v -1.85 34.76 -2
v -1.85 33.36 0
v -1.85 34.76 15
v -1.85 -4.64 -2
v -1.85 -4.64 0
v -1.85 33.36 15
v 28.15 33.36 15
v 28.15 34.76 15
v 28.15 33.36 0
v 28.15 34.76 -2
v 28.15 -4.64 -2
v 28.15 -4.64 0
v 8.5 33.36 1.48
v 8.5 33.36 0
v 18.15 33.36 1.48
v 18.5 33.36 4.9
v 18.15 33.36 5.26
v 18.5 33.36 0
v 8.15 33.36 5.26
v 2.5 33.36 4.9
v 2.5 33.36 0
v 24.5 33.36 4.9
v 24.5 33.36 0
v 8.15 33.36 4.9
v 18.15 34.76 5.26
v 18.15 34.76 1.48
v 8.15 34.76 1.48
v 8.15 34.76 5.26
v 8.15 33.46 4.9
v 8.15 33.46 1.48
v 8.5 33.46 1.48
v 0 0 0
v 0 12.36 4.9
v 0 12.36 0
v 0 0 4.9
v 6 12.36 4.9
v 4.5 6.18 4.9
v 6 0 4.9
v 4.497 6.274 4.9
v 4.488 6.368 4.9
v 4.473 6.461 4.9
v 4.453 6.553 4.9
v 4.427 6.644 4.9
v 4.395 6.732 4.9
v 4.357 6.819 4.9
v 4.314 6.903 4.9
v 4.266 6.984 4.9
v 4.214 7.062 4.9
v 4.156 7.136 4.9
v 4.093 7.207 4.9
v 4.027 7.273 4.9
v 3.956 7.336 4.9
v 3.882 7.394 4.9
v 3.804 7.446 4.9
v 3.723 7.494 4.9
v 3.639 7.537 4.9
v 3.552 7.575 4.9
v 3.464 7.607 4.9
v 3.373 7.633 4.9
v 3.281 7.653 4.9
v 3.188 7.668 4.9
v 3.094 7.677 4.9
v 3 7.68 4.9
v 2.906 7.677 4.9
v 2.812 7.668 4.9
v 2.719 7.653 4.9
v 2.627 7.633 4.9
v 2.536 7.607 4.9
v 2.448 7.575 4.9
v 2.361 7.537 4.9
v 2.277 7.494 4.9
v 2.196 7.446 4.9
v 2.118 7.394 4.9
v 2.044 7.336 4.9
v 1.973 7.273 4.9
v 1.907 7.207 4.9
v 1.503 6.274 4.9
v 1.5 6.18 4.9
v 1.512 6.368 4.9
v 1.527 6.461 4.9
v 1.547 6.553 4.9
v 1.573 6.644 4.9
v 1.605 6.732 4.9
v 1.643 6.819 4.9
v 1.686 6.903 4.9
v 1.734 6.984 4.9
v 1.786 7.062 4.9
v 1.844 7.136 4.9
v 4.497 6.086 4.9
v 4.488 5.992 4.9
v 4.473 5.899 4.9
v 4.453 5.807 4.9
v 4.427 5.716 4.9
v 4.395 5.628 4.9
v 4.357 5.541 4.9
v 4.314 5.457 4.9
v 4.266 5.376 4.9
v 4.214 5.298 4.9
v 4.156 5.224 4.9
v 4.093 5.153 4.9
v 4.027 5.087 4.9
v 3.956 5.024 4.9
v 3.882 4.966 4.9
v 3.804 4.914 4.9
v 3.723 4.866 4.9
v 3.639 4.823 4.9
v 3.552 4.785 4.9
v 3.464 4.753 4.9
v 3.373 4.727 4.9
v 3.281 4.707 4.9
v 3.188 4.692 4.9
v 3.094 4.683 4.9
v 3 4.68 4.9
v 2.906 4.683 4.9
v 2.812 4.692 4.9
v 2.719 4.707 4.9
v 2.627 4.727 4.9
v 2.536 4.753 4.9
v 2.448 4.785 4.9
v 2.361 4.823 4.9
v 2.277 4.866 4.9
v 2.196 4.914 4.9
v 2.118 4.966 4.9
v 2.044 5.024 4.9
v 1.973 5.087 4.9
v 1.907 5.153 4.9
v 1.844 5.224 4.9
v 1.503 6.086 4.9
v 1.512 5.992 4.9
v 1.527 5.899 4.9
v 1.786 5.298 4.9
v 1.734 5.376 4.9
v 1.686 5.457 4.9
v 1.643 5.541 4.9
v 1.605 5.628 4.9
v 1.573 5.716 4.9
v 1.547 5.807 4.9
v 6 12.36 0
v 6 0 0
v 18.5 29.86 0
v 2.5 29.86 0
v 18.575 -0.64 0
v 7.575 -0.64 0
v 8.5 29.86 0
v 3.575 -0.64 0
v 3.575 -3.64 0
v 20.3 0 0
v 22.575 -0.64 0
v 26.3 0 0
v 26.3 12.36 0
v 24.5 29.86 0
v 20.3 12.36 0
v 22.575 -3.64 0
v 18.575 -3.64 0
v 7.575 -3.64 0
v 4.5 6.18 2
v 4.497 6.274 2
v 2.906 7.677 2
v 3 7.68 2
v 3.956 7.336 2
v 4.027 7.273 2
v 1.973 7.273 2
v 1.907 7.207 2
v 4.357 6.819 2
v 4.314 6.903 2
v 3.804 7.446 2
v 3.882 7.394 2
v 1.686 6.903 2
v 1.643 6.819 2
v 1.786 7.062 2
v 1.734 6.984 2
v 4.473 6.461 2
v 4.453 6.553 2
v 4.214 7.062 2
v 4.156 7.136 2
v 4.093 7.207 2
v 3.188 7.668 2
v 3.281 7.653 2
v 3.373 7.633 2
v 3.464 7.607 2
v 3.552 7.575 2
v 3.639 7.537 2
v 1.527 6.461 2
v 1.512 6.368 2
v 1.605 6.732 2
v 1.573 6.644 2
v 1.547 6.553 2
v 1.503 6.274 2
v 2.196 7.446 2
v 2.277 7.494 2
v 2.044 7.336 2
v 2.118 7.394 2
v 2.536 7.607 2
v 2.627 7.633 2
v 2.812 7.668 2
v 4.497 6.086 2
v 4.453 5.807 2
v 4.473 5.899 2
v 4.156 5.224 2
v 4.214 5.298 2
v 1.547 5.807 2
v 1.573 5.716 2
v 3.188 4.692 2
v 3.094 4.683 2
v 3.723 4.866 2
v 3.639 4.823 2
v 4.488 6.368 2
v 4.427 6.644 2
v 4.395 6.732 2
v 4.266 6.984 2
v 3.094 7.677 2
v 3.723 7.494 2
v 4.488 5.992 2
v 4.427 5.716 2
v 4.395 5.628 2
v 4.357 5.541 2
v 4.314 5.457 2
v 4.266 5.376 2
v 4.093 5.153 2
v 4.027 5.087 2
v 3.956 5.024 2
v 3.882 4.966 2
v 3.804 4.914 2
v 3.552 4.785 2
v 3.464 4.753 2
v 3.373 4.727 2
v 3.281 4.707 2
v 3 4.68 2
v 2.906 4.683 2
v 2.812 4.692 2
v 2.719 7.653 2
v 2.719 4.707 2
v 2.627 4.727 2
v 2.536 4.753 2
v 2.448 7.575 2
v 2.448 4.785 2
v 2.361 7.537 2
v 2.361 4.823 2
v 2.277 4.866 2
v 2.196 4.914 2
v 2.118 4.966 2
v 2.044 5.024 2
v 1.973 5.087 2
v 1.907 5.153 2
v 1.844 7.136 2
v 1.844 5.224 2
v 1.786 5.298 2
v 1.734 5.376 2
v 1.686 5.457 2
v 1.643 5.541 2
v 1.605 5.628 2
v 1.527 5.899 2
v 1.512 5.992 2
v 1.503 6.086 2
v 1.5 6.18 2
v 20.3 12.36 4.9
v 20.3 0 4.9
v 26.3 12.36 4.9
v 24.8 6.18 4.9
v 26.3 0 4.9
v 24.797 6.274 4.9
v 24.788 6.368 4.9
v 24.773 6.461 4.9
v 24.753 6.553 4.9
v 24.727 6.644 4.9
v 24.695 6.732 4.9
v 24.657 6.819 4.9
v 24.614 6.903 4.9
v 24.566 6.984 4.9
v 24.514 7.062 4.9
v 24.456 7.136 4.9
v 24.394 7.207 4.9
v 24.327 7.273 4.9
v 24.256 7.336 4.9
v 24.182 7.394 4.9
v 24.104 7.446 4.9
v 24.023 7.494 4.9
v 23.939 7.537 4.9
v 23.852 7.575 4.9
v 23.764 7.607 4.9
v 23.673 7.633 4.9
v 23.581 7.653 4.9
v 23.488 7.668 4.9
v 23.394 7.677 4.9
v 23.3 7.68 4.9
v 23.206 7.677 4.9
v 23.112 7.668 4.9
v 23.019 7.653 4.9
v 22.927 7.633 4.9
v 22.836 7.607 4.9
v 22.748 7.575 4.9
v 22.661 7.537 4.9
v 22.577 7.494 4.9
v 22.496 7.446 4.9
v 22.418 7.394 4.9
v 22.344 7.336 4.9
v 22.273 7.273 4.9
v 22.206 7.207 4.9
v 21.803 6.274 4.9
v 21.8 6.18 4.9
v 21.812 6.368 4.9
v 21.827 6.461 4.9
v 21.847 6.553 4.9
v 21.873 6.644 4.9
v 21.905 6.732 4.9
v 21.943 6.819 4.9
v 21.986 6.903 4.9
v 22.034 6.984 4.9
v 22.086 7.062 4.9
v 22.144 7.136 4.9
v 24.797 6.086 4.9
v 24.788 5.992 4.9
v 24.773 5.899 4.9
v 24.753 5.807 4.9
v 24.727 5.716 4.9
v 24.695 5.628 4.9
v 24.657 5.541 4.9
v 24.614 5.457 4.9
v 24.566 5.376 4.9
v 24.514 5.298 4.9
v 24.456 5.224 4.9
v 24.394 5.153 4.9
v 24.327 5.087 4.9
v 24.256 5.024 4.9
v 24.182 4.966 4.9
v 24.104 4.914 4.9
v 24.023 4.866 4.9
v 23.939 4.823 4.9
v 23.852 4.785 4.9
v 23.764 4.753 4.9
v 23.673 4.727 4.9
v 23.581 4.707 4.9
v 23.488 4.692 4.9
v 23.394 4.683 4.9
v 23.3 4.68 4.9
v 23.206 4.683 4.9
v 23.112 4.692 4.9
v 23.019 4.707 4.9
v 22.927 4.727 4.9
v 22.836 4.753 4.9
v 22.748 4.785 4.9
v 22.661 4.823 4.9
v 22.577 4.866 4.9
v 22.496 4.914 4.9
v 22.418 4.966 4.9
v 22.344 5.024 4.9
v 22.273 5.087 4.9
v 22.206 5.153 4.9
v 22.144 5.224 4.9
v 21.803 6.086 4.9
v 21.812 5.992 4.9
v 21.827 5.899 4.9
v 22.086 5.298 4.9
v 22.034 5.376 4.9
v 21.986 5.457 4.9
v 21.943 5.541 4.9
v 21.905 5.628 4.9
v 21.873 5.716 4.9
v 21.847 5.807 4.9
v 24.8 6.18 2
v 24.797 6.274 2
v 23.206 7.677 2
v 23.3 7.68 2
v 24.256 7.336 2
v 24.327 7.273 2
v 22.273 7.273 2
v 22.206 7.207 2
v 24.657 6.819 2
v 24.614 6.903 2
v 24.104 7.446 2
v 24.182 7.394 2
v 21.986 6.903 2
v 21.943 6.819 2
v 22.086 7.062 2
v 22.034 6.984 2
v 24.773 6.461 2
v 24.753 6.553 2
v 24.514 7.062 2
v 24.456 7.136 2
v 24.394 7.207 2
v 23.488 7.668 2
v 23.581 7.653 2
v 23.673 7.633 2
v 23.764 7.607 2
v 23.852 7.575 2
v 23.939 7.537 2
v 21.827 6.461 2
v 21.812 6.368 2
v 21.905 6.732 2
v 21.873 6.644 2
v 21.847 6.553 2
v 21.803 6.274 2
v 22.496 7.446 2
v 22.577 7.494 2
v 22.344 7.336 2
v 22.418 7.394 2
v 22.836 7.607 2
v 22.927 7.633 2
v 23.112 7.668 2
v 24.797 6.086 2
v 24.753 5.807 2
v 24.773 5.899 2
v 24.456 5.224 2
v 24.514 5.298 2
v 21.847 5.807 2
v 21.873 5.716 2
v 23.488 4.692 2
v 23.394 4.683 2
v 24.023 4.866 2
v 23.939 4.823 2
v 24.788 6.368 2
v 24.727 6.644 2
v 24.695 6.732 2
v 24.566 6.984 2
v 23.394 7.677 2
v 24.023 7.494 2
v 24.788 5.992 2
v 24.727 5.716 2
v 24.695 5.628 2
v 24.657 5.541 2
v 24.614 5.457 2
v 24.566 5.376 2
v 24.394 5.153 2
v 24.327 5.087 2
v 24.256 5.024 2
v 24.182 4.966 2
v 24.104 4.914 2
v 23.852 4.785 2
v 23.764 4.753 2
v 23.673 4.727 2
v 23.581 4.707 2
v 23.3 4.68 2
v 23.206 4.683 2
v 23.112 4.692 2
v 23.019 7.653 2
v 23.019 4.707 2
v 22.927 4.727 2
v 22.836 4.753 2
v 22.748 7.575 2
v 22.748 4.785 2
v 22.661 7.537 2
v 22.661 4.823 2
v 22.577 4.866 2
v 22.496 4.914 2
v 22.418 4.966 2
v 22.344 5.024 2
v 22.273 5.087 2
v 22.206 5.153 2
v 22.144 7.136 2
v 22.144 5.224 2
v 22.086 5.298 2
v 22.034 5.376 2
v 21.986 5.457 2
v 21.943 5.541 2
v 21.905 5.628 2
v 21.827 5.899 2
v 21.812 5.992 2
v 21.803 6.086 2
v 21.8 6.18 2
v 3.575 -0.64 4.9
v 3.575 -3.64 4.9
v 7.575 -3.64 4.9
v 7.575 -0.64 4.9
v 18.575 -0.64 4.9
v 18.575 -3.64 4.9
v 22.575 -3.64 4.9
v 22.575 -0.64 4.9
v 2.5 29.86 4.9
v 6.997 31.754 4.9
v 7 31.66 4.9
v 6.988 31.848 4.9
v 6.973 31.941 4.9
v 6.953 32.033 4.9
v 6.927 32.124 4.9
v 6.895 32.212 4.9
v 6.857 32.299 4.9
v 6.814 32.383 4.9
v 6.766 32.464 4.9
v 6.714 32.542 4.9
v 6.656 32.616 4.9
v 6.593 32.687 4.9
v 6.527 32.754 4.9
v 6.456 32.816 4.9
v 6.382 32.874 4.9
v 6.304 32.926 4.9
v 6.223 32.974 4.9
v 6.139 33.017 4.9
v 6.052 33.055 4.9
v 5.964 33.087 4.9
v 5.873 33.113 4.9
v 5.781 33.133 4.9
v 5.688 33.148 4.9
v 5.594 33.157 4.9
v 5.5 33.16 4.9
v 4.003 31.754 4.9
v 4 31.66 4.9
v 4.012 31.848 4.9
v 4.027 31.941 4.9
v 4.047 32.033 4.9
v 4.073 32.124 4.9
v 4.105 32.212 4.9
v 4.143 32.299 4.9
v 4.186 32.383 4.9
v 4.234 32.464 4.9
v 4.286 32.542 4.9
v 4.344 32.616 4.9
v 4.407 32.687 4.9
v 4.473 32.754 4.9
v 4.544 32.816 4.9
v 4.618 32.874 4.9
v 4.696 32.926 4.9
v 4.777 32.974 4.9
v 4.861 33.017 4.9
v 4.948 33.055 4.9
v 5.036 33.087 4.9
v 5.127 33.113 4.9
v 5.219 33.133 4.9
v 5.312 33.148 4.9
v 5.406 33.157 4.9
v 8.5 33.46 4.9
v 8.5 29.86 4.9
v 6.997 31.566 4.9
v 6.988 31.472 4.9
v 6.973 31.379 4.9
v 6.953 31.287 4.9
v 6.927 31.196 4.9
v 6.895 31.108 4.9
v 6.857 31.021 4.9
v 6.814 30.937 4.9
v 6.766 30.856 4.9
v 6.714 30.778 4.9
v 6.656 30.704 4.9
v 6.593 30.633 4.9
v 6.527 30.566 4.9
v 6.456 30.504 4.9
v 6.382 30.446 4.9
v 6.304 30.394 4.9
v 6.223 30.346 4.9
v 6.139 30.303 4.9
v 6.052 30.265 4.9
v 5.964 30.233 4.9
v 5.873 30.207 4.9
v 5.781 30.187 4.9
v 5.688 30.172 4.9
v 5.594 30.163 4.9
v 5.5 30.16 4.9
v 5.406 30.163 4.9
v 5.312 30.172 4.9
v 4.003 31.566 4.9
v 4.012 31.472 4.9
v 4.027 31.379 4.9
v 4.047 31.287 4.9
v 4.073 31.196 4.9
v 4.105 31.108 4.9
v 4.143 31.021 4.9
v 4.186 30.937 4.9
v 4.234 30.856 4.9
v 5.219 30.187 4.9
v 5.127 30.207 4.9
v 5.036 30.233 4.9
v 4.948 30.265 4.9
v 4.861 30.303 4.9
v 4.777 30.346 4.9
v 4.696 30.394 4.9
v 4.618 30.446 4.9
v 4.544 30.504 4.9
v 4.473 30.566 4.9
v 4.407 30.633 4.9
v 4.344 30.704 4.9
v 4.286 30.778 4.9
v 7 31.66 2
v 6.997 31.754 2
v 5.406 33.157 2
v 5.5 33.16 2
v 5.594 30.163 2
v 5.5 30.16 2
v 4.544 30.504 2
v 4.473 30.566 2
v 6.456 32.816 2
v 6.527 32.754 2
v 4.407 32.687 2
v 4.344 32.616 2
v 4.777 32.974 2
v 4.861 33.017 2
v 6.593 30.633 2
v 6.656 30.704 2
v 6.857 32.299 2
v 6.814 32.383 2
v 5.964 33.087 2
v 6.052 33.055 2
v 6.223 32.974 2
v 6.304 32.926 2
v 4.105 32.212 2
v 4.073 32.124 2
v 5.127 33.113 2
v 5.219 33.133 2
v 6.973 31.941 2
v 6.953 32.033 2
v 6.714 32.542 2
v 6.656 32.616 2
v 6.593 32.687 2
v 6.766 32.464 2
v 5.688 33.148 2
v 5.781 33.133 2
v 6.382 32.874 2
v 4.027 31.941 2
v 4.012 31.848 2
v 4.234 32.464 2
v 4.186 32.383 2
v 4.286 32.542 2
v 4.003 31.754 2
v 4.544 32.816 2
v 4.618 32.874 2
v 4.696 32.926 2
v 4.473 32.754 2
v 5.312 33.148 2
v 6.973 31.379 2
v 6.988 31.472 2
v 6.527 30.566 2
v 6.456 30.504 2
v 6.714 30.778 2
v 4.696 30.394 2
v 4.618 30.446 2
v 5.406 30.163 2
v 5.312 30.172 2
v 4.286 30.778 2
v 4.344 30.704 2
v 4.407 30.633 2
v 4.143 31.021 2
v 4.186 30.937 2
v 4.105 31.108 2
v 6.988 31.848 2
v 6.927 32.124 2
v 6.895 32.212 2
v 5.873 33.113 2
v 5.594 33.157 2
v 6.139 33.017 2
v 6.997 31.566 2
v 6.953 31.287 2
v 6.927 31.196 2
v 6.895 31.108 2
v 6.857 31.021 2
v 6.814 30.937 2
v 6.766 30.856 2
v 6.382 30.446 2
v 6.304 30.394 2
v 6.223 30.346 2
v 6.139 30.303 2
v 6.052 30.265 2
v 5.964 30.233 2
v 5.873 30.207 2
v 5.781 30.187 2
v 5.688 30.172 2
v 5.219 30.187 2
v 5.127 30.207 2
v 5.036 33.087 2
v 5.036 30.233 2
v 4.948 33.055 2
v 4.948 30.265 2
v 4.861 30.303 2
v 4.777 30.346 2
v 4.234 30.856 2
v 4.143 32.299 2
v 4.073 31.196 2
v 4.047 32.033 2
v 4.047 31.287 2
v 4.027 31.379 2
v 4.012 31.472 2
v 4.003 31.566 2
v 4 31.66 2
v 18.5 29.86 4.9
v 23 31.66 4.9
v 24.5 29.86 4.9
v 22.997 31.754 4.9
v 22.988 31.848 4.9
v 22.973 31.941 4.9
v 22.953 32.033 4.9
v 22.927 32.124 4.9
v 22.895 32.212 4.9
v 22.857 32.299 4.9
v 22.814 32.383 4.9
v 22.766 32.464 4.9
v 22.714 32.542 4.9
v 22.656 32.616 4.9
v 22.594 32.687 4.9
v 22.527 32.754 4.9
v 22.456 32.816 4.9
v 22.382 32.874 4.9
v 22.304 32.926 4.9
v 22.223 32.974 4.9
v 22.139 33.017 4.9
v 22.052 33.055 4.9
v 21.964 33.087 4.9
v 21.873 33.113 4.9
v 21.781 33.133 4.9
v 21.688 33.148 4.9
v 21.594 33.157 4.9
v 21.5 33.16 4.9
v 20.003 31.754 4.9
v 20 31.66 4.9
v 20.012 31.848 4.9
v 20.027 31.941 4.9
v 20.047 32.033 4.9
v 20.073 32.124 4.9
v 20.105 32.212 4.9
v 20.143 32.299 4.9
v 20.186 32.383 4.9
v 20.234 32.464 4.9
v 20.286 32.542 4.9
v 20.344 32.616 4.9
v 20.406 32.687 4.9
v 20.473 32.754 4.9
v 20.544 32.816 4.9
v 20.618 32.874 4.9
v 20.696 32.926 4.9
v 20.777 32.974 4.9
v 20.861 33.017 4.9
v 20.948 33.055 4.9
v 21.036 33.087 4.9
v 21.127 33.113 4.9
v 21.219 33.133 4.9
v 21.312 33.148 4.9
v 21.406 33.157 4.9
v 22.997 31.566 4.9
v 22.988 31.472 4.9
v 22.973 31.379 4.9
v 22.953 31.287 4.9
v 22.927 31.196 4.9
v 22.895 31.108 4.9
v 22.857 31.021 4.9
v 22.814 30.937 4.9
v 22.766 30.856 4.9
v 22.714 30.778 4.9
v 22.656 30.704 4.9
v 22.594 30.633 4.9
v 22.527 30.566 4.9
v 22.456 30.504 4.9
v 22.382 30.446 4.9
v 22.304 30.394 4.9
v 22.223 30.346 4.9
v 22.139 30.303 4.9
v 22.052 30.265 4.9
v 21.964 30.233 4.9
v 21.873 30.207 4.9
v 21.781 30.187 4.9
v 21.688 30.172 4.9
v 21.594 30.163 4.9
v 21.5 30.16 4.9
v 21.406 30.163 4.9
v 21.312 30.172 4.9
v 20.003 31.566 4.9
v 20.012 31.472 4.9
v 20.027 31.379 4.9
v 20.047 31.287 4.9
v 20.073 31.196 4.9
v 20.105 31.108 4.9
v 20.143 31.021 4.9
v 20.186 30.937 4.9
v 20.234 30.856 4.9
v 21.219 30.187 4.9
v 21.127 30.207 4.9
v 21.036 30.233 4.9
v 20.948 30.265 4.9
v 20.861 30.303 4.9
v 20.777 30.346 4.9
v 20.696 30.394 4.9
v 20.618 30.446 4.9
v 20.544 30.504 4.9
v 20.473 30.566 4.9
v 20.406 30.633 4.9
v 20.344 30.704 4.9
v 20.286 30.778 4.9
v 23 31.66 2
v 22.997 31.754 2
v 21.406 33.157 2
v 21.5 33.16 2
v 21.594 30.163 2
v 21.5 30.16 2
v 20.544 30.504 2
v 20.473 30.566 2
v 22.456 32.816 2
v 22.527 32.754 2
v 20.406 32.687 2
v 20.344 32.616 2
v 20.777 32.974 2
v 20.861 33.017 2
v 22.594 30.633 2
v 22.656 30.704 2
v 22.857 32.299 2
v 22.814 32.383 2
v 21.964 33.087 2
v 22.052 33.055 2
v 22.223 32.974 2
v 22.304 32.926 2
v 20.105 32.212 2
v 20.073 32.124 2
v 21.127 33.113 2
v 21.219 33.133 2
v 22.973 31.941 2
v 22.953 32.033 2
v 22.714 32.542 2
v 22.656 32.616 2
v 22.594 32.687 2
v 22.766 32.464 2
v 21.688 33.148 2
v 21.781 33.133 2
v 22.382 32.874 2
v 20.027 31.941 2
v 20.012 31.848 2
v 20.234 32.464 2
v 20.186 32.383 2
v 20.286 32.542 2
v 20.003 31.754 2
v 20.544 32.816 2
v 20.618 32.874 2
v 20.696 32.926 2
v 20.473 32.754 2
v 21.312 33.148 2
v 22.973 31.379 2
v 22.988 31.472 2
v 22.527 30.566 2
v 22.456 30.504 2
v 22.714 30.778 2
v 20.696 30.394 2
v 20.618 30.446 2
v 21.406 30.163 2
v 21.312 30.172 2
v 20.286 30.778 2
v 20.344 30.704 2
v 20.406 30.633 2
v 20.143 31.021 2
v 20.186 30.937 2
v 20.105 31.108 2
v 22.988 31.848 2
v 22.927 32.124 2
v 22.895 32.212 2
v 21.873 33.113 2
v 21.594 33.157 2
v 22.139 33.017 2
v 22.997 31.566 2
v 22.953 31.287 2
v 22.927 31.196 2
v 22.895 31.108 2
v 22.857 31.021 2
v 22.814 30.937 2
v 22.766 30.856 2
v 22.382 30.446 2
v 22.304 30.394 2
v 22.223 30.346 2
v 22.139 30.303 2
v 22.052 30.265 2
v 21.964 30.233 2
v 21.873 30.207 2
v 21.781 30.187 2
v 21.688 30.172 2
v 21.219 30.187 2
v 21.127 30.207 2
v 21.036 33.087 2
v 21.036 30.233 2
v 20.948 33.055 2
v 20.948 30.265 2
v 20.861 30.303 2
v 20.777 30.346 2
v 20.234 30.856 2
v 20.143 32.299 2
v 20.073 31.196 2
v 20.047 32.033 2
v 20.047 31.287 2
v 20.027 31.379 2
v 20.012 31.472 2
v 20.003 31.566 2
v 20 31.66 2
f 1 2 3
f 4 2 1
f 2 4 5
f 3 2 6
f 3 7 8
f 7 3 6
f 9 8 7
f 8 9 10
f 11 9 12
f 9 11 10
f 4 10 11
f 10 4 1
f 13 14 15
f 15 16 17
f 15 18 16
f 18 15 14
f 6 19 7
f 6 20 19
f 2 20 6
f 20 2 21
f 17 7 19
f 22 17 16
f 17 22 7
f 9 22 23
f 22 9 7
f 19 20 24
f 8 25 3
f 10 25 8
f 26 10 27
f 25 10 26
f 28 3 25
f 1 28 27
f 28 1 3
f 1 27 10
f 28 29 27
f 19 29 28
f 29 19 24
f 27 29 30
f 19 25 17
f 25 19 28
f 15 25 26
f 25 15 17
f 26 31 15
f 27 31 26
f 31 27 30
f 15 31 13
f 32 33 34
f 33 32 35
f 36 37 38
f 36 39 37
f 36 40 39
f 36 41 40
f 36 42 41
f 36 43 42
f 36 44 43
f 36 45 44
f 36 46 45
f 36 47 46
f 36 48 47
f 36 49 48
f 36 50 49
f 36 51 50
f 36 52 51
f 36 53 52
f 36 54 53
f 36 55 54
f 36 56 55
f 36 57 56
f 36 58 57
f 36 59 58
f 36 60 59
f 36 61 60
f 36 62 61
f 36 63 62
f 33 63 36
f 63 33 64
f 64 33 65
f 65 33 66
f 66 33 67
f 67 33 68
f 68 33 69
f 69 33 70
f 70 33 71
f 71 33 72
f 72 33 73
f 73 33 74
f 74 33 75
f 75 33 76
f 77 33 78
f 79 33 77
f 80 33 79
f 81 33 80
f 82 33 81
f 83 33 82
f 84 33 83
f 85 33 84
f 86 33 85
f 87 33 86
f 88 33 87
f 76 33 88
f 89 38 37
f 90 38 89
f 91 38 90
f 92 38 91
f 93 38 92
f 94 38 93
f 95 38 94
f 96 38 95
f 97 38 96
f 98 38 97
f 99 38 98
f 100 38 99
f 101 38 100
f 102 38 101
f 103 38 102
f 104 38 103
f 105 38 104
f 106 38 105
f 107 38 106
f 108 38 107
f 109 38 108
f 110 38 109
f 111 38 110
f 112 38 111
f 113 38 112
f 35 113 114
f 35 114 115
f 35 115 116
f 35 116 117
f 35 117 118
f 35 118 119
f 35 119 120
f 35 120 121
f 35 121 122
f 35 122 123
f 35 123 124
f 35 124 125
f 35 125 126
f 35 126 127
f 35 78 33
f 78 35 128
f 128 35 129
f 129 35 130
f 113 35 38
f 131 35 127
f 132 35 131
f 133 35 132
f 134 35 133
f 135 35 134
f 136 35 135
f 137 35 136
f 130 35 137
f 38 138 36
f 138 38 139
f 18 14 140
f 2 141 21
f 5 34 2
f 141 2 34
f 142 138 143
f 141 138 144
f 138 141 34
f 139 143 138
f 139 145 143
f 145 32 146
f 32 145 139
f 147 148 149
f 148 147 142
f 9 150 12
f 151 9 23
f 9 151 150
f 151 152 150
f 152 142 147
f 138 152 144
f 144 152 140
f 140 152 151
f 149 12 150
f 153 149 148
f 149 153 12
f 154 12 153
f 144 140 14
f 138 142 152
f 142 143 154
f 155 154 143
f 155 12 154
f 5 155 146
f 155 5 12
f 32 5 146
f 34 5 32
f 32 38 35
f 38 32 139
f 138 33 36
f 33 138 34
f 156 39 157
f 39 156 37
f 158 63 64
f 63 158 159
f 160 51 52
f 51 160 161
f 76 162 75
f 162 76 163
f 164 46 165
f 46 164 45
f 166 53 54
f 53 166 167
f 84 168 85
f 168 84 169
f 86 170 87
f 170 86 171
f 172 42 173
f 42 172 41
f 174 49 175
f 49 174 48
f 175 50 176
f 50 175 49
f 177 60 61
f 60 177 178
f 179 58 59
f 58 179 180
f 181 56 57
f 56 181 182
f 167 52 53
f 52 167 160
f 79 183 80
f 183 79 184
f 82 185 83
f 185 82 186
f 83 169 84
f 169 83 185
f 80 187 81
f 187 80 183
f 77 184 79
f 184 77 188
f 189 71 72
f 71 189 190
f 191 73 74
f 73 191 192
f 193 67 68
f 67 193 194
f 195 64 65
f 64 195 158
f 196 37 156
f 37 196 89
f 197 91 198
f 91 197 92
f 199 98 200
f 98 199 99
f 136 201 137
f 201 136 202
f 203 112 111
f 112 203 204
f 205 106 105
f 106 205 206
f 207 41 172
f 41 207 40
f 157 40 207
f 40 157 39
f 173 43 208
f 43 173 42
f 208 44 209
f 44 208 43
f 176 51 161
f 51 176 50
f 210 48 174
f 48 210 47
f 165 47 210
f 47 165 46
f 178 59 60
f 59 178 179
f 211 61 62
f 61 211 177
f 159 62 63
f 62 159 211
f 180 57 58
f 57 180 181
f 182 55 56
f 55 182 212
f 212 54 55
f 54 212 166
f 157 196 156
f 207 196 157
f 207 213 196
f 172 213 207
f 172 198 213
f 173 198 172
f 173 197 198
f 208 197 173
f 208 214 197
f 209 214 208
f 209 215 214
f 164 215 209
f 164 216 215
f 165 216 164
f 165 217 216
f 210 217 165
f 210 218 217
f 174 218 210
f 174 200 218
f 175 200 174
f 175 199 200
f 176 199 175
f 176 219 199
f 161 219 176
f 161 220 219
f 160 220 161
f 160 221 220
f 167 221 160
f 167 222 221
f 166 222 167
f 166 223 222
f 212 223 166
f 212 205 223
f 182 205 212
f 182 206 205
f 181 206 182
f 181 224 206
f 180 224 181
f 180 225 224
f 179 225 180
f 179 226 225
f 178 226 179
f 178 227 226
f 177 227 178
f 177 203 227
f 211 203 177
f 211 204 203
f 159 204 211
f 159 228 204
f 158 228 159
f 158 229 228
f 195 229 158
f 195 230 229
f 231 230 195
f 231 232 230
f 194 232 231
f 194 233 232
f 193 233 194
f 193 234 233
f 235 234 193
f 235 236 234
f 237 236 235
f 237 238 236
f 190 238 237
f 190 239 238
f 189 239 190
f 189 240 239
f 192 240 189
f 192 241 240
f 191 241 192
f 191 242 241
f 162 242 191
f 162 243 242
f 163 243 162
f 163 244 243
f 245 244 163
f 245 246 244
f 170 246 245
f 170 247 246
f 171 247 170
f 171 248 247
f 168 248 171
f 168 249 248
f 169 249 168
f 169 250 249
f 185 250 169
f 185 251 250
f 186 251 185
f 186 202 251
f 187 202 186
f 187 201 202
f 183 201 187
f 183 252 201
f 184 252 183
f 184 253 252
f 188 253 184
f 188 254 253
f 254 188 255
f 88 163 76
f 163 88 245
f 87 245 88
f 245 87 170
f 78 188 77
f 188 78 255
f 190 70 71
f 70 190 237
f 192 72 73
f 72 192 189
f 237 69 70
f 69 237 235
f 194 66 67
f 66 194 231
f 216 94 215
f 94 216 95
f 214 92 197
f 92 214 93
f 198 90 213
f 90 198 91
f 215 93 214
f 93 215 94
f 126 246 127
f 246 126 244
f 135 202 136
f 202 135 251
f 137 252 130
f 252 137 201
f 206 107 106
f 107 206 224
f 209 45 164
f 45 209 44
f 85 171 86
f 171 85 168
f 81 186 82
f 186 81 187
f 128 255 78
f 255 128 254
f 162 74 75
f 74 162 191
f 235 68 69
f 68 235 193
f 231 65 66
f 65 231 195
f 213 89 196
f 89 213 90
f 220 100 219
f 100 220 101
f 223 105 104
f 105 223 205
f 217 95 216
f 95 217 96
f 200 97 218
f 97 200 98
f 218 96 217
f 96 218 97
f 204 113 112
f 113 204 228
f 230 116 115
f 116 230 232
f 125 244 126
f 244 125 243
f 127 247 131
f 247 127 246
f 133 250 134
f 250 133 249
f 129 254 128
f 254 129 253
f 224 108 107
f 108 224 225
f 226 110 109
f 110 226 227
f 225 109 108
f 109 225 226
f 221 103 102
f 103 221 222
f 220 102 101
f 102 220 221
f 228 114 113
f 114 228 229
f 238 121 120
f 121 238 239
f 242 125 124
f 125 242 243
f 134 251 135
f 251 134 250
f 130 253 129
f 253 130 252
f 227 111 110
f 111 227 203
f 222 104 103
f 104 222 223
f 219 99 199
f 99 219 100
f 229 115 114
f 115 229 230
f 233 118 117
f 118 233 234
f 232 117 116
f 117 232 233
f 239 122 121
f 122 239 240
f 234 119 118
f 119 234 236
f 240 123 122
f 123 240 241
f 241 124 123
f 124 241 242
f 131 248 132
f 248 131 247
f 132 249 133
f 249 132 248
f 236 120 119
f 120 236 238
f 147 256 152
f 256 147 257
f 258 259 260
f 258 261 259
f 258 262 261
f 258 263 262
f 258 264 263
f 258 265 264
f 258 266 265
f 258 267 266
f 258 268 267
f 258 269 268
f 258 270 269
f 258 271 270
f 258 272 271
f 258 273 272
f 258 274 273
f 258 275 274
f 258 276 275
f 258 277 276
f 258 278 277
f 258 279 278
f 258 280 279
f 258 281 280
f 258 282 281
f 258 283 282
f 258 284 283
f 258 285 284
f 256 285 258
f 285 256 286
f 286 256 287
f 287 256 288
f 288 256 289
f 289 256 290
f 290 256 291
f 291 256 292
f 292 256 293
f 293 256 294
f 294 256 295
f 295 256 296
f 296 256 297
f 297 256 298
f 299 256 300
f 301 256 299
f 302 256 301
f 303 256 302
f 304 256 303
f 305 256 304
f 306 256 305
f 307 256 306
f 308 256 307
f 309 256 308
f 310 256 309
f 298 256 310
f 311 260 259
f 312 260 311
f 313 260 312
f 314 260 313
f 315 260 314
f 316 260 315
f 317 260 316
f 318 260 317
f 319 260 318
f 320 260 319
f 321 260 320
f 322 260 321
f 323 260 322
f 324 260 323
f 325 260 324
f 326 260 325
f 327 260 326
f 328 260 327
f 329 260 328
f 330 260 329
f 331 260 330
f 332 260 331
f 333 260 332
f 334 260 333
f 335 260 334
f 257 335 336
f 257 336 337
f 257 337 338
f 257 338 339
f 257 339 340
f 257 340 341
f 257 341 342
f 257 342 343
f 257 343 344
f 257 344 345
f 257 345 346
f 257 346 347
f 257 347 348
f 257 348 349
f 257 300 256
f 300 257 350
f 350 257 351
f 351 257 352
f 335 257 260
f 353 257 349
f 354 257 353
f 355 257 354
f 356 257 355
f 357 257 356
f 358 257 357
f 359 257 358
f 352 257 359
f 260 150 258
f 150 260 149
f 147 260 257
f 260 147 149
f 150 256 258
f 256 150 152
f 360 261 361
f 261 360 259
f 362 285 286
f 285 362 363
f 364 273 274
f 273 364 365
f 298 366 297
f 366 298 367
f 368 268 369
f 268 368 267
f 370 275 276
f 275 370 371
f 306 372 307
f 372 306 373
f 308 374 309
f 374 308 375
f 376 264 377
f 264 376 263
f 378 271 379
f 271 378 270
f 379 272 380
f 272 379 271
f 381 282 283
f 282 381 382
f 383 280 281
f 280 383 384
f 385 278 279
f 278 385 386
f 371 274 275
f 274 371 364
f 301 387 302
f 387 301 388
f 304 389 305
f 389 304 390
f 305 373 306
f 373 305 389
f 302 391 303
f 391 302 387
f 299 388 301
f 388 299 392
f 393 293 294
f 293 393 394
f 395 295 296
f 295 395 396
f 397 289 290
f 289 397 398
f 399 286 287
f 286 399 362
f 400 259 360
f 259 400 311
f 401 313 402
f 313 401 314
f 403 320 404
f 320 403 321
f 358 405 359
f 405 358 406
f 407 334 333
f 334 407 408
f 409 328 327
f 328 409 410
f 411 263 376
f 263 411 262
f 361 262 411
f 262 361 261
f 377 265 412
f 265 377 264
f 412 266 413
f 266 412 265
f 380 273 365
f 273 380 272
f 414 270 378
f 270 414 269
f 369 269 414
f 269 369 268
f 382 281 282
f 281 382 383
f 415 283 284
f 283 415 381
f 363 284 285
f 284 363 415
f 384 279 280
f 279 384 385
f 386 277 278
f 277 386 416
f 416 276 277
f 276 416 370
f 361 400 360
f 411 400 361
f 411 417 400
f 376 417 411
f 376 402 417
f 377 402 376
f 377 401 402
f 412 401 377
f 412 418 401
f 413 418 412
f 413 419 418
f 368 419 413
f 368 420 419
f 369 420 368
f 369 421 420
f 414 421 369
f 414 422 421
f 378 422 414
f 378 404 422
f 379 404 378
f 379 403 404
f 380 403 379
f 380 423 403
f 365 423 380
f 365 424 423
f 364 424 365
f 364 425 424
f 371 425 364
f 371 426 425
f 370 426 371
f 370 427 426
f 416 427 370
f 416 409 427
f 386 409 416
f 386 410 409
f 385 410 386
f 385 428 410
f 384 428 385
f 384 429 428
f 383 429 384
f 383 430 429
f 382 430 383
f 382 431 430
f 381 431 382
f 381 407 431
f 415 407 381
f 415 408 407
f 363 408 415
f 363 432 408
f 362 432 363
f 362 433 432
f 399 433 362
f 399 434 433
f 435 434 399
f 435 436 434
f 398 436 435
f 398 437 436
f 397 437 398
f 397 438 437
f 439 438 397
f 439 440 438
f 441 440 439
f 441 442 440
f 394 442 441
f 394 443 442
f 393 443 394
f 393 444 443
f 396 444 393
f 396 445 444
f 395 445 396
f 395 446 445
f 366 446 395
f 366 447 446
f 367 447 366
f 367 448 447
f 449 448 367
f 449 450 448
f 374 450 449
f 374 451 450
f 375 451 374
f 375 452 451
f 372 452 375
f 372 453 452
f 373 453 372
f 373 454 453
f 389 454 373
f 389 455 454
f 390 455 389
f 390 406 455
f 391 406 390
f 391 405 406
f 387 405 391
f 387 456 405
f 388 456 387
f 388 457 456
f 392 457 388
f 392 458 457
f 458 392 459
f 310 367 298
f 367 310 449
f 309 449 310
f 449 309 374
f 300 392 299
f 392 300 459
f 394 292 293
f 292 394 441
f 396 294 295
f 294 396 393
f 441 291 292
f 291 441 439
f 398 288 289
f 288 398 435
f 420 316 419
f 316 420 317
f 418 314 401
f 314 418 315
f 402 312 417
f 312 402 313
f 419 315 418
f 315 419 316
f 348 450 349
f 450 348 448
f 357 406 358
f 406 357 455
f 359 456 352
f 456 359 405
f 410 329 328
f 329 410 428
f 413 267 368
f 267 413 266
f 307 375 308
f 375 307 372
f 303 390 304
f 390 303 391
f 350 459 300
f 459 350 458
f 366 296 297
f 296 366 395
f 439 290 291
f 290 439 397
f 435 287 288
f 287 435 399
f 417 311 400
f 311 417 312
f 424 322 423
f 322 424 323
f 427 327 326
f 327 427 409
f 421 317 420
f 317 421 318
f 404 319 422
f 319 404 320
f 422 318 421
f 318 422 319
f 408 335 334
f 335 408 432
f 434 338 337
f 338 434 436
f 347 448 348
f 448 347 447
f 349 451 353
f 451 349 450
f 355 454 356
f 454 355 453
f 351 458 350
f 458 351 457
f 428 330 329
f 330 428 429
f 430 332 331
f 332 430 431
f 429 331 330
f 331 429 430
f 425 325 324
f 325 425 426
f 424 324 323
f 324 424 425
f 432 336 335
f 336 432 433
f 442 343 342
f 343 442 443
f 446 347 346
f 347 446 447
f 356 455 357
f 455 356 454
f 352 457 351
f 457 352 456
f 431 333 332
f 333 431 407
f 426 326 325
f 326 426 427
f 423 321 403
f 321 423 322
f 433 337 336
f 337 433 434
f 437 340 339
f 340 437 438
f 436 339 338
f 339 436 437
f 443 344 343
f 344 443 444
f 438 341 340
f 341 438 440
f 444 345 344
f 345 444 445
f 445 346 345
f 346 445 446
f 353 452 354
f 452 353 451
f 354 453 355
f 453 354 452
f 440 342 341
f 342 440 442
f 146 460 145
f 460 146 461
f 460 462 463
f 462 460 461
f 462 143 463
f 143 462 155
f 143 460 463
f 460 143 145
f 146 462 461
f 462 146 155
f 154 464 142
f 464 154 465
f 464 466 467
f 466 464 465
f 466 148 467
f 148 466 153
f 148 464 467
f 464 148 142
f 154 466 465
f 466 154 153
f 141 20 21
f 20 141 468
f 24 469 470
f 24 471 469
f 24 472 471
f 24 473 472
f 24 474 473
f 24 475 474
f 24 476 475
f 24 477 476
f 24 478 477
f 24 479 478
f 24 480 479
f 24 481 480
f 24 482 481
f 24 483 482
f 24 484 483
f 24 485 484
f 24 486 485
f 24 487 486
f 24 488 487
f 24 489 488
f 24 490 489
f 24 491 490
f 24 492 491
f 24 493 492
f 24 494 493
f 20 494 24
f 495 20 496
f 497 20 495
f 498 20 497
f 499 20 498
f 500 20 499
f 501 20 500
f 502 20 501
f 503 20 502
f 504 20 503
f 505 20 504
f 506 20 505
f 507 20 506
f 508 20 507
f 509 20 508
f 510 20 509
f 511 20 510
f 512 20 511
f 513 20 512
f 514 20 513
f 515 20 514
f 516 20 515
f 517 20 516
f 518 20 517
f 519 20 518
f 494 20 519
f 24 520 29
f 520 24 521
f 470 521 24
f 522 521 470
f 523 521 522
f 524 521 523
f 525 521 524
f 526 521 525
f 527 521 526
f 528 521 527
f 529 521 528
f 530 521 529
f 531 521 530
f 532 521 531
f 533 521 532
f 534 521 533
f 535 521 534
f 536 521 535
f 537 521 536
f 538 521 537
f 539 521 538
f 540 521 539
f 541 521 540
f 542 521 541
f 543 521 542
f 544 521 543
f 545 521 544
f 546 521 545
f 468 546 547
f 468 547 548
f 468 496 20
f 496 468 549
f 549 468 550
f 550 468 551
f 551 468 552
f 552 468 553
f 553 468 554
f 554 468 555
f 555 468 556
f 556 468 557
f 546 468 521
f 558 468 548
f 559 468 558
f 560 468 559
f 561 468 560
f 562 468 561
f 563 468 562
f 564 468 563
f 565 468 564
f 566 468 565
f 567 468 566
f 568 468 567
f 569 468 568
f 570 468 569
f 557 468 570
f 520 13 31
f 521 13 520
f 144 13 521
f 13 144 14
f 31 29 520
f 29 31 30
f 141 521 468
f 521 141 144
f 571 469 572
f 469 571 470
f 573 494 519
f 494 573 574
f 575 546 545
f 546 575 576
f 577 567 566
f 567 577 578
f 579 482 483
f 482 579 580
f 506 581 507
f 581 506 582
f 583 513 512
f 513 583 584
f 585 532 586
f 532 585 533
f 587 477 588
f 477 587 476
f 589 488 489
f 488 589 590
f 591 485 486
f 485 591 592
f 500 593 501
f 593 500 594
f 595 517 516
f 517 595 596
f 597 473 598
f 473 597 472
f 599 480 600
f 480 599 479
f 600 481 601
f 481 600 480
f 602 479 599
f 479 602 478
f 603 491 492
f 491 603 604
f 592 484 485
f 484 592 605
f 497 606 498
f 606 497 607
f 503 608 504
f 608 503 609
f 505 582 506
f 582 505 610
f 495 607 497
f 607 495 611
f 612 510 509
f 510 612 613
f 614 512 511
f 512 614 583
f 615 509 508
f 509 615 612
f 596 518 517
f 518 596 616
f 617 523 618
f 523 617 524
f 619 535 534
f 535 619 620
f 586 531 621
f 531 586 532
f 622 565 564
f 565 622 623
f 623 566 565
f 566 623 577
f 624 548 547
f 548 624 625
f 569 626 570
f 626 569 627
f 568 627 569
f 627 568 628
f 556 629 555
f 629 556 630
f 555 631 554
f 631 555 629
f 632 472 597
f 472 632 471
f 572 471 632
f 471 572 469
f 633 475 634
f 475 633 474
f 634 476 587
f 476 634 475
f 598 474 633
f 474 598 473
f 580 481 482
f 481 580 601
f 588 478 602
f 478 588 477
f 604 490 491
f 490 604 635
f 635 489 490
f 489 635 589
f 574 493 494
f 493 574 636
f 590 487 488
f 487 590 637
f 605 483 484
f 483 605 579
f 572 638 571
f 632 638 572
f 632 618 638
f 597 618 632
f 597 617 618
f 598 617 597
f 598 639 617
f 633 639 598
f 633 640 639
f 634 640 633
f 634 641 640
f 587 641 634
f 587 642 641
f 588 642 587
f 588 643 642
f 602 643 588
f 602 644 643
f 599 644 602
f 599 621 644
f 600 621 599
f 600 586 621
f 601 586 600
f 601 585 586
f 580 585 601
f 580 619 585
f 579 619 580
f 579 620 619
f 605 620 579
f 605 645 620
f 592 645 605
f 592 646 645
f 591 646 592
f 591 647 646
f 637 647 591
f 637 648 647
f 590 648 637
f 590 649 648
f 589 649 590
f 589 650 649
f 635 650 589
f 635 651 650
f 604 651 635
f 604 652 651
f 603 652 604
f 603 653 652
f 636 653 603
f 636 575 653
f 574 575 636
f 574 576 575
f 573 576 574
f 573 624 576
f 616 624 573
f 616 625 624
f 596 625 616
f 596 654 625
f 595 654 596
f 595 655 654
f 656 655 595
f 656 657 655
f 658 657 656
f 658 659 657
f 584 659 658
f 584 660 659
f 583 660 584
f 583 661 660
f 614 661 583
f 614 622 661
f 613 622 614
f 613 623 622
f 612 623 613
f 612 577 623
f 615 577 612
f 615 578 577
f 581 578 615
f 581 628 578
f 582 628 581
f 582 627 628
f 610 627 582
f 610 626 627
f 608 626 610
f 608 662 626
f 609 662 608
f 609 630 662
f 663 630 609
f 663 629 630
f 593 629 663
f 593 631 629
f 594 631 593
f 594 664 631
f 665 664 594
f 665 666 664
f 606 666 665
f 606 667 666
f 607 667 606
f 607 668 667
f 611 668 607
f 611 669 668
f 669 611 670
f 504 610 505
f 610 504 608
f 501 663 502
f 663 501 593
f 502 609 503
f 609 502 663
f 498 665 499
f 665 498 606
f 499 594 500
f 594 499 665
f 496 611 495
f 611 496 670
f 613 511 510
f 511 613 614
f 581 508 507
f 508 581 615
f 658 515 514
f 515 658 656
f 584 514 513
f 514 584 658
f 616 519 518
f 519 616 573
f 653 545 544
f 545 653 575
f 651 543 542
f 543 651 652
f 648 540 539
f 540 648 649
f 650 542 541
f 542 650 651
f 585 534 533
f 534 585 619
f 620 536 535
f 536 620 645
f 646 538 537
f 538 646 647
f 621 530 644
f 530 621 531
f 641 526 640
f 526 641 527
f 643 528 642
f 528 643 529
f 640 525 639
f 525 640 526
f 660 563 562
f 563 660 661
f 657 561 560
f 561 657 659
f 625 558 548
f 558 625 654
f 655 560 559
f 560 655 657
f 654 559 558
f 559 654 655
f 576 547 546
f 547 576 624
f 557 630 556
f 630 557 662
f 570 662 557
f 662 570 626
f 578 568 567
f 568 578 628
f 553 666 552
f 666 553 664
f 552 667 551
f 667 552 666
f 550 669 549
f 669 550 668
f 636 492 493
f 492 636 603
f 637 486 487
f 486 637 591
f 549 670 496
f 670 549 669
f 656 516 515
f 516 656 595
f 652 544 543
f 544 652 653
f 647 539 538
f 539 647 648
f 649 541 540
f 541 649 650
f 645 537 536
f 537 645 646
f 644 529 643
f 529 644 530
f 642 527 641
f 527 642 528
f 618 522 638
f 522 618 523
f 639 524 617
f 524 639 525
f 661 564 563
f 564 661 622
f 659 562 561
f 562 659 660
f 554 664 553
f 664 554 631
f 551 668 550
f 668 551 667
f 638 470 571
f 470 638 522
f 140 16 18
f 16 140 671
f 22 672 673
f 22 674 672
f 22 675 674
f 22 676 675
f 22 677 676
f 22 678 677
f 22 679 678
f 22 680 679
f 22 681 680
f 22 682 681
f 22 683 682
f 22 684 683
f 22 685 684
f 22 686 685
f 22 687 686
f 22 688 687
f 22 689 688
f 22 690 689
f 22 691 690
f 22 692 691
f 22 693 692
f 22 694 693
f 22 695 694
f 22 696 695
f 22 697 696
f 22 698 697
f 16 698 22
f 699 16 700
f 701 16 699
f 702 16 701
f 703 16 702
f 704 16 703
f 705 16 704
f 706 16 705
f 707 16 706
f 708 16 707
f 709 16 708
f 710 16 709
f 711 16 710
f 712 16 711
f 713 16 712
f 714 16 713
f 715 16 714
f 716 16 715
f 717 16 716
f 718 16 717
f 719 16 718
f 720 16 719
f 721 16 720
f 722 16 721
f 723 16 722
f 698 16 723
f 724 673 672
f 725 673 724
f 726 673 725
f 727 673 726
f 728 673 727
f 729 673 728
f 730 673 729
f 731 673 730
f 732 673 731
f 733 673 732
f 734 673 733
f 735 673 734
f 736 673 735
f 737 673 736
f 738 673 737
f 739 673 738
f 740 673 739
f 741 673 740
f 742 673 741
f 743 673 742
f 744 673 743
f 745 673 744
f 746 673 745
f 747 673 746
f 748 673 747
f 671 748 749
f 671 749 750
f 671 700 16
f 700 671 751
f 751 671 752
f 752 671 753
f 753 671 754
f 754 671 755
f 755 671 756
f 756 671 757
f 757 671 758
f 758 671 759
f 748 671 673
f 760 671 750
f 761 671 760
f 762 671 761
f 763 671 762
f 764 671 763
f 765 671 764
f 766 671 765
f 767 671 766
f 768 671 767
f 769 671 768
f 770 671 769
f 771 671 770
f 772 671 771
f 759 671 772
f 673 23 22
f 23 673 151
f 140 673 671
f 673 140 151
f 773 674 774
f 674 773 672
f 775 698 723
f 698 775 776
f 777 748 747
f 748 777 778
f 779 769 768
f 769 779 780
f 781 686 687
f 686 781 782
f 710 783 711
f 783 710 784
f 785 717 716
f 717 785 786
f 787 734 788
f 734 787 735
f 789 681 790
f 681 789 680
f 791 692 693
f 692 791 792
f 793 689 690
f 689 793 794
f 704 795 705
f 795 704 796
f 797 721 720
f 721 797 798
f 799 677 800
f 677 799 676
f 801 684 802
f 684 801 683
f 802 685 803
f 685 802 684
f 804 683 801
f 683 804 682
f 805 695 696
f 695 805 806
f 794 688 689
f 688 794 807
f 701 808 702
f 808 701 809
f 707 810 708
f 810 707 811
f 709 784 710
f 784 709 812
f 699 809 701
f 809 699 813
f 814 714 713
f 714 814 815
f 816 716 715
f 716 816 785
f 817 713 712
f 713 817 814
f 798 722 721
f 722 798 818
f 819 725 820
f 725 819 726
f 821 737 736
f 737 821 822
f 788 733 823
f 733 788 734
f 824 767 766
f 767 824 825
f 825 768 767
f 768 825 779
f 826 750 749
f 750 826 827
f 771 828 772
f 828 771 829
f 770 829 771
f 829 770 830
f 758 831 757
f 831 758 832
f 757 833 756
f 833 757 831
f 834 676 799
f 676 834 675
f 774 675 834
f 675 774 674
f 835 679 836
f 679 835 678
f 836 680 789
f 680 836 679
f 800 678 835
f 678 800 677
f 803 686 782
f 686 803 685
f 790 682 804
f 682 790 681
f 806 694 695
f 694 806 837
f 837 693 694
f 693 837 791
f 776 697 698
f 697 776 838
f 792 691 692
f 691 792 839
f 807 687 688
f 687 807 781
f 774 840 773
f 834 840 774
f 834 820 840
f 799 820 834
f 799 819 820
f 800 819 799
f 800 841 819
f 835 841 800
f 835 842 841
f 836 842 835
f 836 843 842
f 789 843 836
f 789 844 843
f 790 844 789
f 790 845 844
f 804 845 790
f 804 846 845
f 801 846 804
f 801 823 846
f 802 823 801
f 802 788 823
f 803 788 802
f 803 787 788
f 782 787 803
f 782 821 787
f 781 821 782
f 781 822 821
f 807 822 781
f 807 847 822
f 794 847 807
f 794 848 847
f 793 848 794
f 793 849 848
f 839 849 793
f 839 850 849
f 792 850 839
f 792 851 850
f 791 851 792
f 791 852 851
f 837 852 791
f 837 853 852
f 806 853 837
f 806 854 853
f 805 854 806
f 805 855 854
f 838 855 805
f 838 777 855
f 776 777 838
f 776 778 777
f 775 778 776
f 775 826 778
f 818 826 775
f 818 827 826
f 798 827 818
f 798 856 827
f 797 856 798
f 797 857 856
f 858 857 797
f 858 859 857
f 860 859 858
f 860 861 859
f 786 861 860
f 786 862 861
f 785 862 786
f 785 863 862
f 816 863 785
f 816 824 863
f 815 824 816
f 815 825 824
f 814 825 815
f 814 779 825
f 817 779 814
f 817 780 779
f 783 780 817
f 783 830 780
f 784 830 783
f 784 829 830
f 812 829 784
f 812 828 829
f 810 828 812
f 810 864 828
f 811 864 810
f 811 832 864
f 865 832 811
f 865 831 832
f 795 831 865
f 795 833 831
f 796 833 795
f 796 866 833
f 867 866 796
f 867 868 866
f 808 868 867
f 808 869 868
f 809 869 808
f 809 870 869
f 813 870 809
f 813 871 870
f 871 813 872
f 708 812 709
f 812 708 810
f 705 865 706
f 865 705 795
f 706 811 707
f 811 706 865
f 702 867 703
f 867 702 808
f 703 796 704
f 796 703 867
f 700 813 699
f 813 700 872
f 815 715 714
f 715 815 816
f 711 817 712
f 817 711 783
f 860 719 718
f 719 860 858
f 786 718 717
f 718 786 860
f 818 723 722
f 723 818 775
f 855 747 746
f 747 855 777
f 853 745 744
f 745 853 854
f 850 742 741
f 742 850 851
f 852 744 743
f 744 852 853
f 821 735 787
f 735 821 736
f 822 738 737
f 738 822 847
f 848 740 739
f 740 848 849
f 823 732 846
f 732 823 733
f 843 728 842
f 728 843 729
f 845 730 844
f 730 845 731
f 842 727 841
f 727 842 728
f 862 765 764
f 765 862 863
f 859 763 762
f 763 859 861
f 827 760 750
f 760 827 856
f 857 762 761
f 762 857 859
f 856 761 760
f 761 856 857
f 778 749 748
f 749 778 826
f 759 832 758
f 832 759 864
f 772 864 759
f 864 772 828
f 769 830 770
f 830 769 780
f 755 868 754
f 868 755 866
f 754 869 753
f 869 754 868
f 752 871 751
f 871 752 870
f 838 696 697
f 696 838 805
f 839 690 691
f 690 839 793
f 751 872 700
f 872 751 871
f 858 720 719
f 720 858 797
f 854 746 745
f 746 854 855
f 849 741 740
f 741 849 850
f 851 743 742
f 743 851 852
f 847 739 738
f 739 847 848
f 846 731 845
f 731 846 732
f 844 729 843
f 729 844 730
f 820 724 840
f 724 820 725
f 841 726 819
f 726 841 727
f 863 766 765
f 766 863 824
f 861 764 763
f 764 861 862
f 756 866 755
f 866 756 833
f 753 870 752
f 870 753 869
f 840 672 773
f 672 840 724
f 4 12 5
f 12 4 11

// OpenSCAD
SIDE_BLOCK_LENGTH = 12.36;
SIDE_BLOCK_HEIGHT = 4.9;
SIDE_BLOCK_WIDTH = 6;
SIDE_BLOCK_HOLE_RADIUS = 1.5;
SIDE_BLOCK_HOLE_DEPTH = 3;
SIDE_BLOCK_HOLES_DISTANCE = 23.3;


PLATE_WIDTH=30;
PLATE_LENGTH=38;
PLATE_HEIGHT=2;

REAR_BLOCK_LENGTH=3;
REAR_BLOCK_WIDTH=4;
REAR_BLOCK_HEIGHT=SIDE_BLOCK_HEIGHT;
REAR_BLOCKS_DISTANCE=13;
REAR_BLOCK_Y_DISTANCE_FROM_SIDE_BLOCK=0.64;
REAR_BLOCK_X_DISTANCE = (PLATE_WIDTH - (REAR_BLOCKS_DISTANCE+REAR_BLOCK_WIDTH*2)+ xTranslation()) / 2;
echo ("total size of the rear blocks",REAR_BLOCKS_DISTANCE+REAR_BLOCK_WIDTH*2);
echo ("difference", PLATE_WIDTH - (REAR_BLOCKS_DISTANCE+REAR_BLOCK_WIDTH*2));
echo ("rear block x distance:", REAR_BLOCK_X_DISTANCE);

FRONT_BLOCKS_DISTANCE=REAR_BLOCKS_DISTANCE;
FRONT_BLOCK_WIDTH=SIDE_BLOCK_WIDTH;
FRONT_BLOCK_LENGTH=3.6;
FRONT_BLOCK_HEIGHT=REAR_BLOCK_HEIGHT;
FRONT_BLOCK_HOLE_DEPTH=SIDE_BLOCK_HOLE_DEPTH;
FRONT_BLOCK_HOLE_RADIUS=SIDE_BLOCK_HOLE_RADIUS;
FRONT_BLOCK_Y_DISTANCE_FROM_SIDE_BLOCK=17.5;
FRONT_BLOCK_TOTAL_WIDTH=FRONT_BLOCK_WIDTH*2+FRONT_BLOCKS_DISTANCE;
echo("Front blocks total distance",FRONT_BLOCK_TOTAL_WIDTH);
DIFFERENCE = PLATE_WIDTH-FRONT_BLOCK_TOTAL_WIDTH;
echo("difference", DIFFERENCE);
echo("X start", DIFFERENCE/2);
echo("xtranslation", xTranslation());
FRONT_BLOCK_X_DISTANCE=(DIFFERENCE/2);// + xTranslation();
echo ("Front block X distance:",FRONT_BLOCK_X_DISTANCE);
echo ("Remaining:",PLATE_WIDTH - (FRONT_BLOCK_X_DISTANCE+FRONT_BLOCK_WIDTH*2+FRONT_BLOCKS_DISTANCE));

WALL_WIDTH=PLATE_WIDTH;
WALL_LENGTH=1.4;
WALL_HEIGHT=17;

USB_HOLE_WIDTH=FRONT_BLOCKS_DISTANCE-FRONT_BLOCK_WIDTH/2;
USB_HOLE_HEIGHT=3.78;
USB_HOLE_STARTING_HEIGHT=1.48;

plate();
wall();
sideBlocks();
rearBlocks();
frontBlocks();

module sideBlock() {
     difference() {
	  cube(size = [SIDE_BLOCK_WIDTH, SIDE_BLOCK_LENGTH, SIDE_BLOCK_HEIGHT]);
	  translate([SIDE_BLOCK_WIDTH/2, SIDE_BLOCK_LENGTH/2,SIDE_BLOCK_HEIGHT-SIDE_BLOCK_HOLE_DEPTH+0.1])  cylinder(h = SIDE_BLOCK_HOLE_DEPTH, r = SIDE_BLOCK_HOLE_RADIUS, center = false, $fn=100);
     }
}

module sideBlocks() {
     sideBlock();
     translate([SIDE_BLOCK_HOLES_DISTANCE-SIDE_BLOCK_WIDTH/2, 0, 0]) sideBlock();
}

module rearBlock() {
     translate([REAR_BLOCK_X_DISTANCE,-(REAR_BLOCK_Y_DISTANCE_FROM_SIDE_BLOCK+REAR_BLOCK_LENGTH),0]) cube(size=[REAR_BLOCK_WIDTH, REAR_BLOCK_LENGTH, REAR_BLOCK_HEIGHT]);
}

module rearBlocks(){
     rearBlock();
     translate([REAR_BLOCKS_DISTANCE+REAR_BLOCK_WIDTH/2,0,0]) rearBlock();
}

module frontBlock() {
     difference(){
	  translate([FRONT_BLOCK_X_DISTANCE,FRONT_BLOCK_Y_DISTANCE_FROM_SIDE_BLOCK+SIDE_BLOCK_LENGTH,0]) cube(size=[FRONT_BLOCK_WIDTH,FRONT_BLOCK_LENGTH,FRONT_BLOCK_HEIGHT]);
	  translate([FRONT_BLOCK_X_DISTANCE+FRONT_BLOCK_WIDTH/2,FRONT_BLOCK_Y_DISTANCE_FROM_SIDE_BLOCK+SIDE_BLOCK_LENGTH+FRONT_BLOCK_LENGTH/2,FRONT_BLOCK_HEIGHT-FRONT_BLOCK_HOLE_DEPTH+0.1]) cylinder(h=FRONT_BLOCK_HOLE_DEPTH,r=FRONT_BLOCK_HOLE_RADIUS, center=false, $fn=100);
     }
}

module frontBlocks() {
     frontBlock();
     translate([FRONT_BLOCKS_DISTANCE+FRONT_BLOCK_WIDTH/2,0,0]) frontBlock();
}

module plate() {
     X_TRANSLATION = xTranslation();
     translate([X_TRANSLATION,-(REAR_BLOCK_WIDTH+REAR_BLOCK_Y_DISTANCE_FROM_SIDE_BLOCK),-PLATE_HEIGHT]) cube(size=[PLATE_WIDTH,PLATE_LENGTH,PLATE_HEIGHT]);
}

module wall() {
     difference() {
	  X_TRANSLATION=-(PLATE_WIDTH-(SIDE_BLOCK_HOLES_DISTANCE+SIDE_BLOCK_WIDTH/2))/2;
	  translate([X_TRANSLATION,PLATE_LENGTH-(REAR_BLOCK_WIDTH+REAR_BLOCK_Y_DISTANCE_FROM_SIDE_BLOCK),-PLATE_HEIGHT]) cube(size=[WALL_WIDTH,WALL_LENGTH,WALL_HEIGHT]);
	  usbHole();
     }
}

module usbHole() {
     X_TRANSLATION=(WALL_WIDTH-USB_HOLE_WIDTH)/2+ xTranslation();
     translate([X_TRANSLATION,PLATE_LENGTH-(REAR_BLOCK_WIDTH+REAR_BLOCK_Y_DISTANCE_FROM_SIDE_BLOCK)-0.1,USB_HOLE_STARTING_HEIGHT]) cube(size=[USB_HOLE_WIDTH, WALL_LENGTH+0.2, USB_HOLE_HEIGHT]);
}

function xTranslation() = -(PLATE_WIDTH-(SIDE_BLOCK_HOLES_DISTANCE+SIDE_BLOCK_WIDTH/2))/2;
